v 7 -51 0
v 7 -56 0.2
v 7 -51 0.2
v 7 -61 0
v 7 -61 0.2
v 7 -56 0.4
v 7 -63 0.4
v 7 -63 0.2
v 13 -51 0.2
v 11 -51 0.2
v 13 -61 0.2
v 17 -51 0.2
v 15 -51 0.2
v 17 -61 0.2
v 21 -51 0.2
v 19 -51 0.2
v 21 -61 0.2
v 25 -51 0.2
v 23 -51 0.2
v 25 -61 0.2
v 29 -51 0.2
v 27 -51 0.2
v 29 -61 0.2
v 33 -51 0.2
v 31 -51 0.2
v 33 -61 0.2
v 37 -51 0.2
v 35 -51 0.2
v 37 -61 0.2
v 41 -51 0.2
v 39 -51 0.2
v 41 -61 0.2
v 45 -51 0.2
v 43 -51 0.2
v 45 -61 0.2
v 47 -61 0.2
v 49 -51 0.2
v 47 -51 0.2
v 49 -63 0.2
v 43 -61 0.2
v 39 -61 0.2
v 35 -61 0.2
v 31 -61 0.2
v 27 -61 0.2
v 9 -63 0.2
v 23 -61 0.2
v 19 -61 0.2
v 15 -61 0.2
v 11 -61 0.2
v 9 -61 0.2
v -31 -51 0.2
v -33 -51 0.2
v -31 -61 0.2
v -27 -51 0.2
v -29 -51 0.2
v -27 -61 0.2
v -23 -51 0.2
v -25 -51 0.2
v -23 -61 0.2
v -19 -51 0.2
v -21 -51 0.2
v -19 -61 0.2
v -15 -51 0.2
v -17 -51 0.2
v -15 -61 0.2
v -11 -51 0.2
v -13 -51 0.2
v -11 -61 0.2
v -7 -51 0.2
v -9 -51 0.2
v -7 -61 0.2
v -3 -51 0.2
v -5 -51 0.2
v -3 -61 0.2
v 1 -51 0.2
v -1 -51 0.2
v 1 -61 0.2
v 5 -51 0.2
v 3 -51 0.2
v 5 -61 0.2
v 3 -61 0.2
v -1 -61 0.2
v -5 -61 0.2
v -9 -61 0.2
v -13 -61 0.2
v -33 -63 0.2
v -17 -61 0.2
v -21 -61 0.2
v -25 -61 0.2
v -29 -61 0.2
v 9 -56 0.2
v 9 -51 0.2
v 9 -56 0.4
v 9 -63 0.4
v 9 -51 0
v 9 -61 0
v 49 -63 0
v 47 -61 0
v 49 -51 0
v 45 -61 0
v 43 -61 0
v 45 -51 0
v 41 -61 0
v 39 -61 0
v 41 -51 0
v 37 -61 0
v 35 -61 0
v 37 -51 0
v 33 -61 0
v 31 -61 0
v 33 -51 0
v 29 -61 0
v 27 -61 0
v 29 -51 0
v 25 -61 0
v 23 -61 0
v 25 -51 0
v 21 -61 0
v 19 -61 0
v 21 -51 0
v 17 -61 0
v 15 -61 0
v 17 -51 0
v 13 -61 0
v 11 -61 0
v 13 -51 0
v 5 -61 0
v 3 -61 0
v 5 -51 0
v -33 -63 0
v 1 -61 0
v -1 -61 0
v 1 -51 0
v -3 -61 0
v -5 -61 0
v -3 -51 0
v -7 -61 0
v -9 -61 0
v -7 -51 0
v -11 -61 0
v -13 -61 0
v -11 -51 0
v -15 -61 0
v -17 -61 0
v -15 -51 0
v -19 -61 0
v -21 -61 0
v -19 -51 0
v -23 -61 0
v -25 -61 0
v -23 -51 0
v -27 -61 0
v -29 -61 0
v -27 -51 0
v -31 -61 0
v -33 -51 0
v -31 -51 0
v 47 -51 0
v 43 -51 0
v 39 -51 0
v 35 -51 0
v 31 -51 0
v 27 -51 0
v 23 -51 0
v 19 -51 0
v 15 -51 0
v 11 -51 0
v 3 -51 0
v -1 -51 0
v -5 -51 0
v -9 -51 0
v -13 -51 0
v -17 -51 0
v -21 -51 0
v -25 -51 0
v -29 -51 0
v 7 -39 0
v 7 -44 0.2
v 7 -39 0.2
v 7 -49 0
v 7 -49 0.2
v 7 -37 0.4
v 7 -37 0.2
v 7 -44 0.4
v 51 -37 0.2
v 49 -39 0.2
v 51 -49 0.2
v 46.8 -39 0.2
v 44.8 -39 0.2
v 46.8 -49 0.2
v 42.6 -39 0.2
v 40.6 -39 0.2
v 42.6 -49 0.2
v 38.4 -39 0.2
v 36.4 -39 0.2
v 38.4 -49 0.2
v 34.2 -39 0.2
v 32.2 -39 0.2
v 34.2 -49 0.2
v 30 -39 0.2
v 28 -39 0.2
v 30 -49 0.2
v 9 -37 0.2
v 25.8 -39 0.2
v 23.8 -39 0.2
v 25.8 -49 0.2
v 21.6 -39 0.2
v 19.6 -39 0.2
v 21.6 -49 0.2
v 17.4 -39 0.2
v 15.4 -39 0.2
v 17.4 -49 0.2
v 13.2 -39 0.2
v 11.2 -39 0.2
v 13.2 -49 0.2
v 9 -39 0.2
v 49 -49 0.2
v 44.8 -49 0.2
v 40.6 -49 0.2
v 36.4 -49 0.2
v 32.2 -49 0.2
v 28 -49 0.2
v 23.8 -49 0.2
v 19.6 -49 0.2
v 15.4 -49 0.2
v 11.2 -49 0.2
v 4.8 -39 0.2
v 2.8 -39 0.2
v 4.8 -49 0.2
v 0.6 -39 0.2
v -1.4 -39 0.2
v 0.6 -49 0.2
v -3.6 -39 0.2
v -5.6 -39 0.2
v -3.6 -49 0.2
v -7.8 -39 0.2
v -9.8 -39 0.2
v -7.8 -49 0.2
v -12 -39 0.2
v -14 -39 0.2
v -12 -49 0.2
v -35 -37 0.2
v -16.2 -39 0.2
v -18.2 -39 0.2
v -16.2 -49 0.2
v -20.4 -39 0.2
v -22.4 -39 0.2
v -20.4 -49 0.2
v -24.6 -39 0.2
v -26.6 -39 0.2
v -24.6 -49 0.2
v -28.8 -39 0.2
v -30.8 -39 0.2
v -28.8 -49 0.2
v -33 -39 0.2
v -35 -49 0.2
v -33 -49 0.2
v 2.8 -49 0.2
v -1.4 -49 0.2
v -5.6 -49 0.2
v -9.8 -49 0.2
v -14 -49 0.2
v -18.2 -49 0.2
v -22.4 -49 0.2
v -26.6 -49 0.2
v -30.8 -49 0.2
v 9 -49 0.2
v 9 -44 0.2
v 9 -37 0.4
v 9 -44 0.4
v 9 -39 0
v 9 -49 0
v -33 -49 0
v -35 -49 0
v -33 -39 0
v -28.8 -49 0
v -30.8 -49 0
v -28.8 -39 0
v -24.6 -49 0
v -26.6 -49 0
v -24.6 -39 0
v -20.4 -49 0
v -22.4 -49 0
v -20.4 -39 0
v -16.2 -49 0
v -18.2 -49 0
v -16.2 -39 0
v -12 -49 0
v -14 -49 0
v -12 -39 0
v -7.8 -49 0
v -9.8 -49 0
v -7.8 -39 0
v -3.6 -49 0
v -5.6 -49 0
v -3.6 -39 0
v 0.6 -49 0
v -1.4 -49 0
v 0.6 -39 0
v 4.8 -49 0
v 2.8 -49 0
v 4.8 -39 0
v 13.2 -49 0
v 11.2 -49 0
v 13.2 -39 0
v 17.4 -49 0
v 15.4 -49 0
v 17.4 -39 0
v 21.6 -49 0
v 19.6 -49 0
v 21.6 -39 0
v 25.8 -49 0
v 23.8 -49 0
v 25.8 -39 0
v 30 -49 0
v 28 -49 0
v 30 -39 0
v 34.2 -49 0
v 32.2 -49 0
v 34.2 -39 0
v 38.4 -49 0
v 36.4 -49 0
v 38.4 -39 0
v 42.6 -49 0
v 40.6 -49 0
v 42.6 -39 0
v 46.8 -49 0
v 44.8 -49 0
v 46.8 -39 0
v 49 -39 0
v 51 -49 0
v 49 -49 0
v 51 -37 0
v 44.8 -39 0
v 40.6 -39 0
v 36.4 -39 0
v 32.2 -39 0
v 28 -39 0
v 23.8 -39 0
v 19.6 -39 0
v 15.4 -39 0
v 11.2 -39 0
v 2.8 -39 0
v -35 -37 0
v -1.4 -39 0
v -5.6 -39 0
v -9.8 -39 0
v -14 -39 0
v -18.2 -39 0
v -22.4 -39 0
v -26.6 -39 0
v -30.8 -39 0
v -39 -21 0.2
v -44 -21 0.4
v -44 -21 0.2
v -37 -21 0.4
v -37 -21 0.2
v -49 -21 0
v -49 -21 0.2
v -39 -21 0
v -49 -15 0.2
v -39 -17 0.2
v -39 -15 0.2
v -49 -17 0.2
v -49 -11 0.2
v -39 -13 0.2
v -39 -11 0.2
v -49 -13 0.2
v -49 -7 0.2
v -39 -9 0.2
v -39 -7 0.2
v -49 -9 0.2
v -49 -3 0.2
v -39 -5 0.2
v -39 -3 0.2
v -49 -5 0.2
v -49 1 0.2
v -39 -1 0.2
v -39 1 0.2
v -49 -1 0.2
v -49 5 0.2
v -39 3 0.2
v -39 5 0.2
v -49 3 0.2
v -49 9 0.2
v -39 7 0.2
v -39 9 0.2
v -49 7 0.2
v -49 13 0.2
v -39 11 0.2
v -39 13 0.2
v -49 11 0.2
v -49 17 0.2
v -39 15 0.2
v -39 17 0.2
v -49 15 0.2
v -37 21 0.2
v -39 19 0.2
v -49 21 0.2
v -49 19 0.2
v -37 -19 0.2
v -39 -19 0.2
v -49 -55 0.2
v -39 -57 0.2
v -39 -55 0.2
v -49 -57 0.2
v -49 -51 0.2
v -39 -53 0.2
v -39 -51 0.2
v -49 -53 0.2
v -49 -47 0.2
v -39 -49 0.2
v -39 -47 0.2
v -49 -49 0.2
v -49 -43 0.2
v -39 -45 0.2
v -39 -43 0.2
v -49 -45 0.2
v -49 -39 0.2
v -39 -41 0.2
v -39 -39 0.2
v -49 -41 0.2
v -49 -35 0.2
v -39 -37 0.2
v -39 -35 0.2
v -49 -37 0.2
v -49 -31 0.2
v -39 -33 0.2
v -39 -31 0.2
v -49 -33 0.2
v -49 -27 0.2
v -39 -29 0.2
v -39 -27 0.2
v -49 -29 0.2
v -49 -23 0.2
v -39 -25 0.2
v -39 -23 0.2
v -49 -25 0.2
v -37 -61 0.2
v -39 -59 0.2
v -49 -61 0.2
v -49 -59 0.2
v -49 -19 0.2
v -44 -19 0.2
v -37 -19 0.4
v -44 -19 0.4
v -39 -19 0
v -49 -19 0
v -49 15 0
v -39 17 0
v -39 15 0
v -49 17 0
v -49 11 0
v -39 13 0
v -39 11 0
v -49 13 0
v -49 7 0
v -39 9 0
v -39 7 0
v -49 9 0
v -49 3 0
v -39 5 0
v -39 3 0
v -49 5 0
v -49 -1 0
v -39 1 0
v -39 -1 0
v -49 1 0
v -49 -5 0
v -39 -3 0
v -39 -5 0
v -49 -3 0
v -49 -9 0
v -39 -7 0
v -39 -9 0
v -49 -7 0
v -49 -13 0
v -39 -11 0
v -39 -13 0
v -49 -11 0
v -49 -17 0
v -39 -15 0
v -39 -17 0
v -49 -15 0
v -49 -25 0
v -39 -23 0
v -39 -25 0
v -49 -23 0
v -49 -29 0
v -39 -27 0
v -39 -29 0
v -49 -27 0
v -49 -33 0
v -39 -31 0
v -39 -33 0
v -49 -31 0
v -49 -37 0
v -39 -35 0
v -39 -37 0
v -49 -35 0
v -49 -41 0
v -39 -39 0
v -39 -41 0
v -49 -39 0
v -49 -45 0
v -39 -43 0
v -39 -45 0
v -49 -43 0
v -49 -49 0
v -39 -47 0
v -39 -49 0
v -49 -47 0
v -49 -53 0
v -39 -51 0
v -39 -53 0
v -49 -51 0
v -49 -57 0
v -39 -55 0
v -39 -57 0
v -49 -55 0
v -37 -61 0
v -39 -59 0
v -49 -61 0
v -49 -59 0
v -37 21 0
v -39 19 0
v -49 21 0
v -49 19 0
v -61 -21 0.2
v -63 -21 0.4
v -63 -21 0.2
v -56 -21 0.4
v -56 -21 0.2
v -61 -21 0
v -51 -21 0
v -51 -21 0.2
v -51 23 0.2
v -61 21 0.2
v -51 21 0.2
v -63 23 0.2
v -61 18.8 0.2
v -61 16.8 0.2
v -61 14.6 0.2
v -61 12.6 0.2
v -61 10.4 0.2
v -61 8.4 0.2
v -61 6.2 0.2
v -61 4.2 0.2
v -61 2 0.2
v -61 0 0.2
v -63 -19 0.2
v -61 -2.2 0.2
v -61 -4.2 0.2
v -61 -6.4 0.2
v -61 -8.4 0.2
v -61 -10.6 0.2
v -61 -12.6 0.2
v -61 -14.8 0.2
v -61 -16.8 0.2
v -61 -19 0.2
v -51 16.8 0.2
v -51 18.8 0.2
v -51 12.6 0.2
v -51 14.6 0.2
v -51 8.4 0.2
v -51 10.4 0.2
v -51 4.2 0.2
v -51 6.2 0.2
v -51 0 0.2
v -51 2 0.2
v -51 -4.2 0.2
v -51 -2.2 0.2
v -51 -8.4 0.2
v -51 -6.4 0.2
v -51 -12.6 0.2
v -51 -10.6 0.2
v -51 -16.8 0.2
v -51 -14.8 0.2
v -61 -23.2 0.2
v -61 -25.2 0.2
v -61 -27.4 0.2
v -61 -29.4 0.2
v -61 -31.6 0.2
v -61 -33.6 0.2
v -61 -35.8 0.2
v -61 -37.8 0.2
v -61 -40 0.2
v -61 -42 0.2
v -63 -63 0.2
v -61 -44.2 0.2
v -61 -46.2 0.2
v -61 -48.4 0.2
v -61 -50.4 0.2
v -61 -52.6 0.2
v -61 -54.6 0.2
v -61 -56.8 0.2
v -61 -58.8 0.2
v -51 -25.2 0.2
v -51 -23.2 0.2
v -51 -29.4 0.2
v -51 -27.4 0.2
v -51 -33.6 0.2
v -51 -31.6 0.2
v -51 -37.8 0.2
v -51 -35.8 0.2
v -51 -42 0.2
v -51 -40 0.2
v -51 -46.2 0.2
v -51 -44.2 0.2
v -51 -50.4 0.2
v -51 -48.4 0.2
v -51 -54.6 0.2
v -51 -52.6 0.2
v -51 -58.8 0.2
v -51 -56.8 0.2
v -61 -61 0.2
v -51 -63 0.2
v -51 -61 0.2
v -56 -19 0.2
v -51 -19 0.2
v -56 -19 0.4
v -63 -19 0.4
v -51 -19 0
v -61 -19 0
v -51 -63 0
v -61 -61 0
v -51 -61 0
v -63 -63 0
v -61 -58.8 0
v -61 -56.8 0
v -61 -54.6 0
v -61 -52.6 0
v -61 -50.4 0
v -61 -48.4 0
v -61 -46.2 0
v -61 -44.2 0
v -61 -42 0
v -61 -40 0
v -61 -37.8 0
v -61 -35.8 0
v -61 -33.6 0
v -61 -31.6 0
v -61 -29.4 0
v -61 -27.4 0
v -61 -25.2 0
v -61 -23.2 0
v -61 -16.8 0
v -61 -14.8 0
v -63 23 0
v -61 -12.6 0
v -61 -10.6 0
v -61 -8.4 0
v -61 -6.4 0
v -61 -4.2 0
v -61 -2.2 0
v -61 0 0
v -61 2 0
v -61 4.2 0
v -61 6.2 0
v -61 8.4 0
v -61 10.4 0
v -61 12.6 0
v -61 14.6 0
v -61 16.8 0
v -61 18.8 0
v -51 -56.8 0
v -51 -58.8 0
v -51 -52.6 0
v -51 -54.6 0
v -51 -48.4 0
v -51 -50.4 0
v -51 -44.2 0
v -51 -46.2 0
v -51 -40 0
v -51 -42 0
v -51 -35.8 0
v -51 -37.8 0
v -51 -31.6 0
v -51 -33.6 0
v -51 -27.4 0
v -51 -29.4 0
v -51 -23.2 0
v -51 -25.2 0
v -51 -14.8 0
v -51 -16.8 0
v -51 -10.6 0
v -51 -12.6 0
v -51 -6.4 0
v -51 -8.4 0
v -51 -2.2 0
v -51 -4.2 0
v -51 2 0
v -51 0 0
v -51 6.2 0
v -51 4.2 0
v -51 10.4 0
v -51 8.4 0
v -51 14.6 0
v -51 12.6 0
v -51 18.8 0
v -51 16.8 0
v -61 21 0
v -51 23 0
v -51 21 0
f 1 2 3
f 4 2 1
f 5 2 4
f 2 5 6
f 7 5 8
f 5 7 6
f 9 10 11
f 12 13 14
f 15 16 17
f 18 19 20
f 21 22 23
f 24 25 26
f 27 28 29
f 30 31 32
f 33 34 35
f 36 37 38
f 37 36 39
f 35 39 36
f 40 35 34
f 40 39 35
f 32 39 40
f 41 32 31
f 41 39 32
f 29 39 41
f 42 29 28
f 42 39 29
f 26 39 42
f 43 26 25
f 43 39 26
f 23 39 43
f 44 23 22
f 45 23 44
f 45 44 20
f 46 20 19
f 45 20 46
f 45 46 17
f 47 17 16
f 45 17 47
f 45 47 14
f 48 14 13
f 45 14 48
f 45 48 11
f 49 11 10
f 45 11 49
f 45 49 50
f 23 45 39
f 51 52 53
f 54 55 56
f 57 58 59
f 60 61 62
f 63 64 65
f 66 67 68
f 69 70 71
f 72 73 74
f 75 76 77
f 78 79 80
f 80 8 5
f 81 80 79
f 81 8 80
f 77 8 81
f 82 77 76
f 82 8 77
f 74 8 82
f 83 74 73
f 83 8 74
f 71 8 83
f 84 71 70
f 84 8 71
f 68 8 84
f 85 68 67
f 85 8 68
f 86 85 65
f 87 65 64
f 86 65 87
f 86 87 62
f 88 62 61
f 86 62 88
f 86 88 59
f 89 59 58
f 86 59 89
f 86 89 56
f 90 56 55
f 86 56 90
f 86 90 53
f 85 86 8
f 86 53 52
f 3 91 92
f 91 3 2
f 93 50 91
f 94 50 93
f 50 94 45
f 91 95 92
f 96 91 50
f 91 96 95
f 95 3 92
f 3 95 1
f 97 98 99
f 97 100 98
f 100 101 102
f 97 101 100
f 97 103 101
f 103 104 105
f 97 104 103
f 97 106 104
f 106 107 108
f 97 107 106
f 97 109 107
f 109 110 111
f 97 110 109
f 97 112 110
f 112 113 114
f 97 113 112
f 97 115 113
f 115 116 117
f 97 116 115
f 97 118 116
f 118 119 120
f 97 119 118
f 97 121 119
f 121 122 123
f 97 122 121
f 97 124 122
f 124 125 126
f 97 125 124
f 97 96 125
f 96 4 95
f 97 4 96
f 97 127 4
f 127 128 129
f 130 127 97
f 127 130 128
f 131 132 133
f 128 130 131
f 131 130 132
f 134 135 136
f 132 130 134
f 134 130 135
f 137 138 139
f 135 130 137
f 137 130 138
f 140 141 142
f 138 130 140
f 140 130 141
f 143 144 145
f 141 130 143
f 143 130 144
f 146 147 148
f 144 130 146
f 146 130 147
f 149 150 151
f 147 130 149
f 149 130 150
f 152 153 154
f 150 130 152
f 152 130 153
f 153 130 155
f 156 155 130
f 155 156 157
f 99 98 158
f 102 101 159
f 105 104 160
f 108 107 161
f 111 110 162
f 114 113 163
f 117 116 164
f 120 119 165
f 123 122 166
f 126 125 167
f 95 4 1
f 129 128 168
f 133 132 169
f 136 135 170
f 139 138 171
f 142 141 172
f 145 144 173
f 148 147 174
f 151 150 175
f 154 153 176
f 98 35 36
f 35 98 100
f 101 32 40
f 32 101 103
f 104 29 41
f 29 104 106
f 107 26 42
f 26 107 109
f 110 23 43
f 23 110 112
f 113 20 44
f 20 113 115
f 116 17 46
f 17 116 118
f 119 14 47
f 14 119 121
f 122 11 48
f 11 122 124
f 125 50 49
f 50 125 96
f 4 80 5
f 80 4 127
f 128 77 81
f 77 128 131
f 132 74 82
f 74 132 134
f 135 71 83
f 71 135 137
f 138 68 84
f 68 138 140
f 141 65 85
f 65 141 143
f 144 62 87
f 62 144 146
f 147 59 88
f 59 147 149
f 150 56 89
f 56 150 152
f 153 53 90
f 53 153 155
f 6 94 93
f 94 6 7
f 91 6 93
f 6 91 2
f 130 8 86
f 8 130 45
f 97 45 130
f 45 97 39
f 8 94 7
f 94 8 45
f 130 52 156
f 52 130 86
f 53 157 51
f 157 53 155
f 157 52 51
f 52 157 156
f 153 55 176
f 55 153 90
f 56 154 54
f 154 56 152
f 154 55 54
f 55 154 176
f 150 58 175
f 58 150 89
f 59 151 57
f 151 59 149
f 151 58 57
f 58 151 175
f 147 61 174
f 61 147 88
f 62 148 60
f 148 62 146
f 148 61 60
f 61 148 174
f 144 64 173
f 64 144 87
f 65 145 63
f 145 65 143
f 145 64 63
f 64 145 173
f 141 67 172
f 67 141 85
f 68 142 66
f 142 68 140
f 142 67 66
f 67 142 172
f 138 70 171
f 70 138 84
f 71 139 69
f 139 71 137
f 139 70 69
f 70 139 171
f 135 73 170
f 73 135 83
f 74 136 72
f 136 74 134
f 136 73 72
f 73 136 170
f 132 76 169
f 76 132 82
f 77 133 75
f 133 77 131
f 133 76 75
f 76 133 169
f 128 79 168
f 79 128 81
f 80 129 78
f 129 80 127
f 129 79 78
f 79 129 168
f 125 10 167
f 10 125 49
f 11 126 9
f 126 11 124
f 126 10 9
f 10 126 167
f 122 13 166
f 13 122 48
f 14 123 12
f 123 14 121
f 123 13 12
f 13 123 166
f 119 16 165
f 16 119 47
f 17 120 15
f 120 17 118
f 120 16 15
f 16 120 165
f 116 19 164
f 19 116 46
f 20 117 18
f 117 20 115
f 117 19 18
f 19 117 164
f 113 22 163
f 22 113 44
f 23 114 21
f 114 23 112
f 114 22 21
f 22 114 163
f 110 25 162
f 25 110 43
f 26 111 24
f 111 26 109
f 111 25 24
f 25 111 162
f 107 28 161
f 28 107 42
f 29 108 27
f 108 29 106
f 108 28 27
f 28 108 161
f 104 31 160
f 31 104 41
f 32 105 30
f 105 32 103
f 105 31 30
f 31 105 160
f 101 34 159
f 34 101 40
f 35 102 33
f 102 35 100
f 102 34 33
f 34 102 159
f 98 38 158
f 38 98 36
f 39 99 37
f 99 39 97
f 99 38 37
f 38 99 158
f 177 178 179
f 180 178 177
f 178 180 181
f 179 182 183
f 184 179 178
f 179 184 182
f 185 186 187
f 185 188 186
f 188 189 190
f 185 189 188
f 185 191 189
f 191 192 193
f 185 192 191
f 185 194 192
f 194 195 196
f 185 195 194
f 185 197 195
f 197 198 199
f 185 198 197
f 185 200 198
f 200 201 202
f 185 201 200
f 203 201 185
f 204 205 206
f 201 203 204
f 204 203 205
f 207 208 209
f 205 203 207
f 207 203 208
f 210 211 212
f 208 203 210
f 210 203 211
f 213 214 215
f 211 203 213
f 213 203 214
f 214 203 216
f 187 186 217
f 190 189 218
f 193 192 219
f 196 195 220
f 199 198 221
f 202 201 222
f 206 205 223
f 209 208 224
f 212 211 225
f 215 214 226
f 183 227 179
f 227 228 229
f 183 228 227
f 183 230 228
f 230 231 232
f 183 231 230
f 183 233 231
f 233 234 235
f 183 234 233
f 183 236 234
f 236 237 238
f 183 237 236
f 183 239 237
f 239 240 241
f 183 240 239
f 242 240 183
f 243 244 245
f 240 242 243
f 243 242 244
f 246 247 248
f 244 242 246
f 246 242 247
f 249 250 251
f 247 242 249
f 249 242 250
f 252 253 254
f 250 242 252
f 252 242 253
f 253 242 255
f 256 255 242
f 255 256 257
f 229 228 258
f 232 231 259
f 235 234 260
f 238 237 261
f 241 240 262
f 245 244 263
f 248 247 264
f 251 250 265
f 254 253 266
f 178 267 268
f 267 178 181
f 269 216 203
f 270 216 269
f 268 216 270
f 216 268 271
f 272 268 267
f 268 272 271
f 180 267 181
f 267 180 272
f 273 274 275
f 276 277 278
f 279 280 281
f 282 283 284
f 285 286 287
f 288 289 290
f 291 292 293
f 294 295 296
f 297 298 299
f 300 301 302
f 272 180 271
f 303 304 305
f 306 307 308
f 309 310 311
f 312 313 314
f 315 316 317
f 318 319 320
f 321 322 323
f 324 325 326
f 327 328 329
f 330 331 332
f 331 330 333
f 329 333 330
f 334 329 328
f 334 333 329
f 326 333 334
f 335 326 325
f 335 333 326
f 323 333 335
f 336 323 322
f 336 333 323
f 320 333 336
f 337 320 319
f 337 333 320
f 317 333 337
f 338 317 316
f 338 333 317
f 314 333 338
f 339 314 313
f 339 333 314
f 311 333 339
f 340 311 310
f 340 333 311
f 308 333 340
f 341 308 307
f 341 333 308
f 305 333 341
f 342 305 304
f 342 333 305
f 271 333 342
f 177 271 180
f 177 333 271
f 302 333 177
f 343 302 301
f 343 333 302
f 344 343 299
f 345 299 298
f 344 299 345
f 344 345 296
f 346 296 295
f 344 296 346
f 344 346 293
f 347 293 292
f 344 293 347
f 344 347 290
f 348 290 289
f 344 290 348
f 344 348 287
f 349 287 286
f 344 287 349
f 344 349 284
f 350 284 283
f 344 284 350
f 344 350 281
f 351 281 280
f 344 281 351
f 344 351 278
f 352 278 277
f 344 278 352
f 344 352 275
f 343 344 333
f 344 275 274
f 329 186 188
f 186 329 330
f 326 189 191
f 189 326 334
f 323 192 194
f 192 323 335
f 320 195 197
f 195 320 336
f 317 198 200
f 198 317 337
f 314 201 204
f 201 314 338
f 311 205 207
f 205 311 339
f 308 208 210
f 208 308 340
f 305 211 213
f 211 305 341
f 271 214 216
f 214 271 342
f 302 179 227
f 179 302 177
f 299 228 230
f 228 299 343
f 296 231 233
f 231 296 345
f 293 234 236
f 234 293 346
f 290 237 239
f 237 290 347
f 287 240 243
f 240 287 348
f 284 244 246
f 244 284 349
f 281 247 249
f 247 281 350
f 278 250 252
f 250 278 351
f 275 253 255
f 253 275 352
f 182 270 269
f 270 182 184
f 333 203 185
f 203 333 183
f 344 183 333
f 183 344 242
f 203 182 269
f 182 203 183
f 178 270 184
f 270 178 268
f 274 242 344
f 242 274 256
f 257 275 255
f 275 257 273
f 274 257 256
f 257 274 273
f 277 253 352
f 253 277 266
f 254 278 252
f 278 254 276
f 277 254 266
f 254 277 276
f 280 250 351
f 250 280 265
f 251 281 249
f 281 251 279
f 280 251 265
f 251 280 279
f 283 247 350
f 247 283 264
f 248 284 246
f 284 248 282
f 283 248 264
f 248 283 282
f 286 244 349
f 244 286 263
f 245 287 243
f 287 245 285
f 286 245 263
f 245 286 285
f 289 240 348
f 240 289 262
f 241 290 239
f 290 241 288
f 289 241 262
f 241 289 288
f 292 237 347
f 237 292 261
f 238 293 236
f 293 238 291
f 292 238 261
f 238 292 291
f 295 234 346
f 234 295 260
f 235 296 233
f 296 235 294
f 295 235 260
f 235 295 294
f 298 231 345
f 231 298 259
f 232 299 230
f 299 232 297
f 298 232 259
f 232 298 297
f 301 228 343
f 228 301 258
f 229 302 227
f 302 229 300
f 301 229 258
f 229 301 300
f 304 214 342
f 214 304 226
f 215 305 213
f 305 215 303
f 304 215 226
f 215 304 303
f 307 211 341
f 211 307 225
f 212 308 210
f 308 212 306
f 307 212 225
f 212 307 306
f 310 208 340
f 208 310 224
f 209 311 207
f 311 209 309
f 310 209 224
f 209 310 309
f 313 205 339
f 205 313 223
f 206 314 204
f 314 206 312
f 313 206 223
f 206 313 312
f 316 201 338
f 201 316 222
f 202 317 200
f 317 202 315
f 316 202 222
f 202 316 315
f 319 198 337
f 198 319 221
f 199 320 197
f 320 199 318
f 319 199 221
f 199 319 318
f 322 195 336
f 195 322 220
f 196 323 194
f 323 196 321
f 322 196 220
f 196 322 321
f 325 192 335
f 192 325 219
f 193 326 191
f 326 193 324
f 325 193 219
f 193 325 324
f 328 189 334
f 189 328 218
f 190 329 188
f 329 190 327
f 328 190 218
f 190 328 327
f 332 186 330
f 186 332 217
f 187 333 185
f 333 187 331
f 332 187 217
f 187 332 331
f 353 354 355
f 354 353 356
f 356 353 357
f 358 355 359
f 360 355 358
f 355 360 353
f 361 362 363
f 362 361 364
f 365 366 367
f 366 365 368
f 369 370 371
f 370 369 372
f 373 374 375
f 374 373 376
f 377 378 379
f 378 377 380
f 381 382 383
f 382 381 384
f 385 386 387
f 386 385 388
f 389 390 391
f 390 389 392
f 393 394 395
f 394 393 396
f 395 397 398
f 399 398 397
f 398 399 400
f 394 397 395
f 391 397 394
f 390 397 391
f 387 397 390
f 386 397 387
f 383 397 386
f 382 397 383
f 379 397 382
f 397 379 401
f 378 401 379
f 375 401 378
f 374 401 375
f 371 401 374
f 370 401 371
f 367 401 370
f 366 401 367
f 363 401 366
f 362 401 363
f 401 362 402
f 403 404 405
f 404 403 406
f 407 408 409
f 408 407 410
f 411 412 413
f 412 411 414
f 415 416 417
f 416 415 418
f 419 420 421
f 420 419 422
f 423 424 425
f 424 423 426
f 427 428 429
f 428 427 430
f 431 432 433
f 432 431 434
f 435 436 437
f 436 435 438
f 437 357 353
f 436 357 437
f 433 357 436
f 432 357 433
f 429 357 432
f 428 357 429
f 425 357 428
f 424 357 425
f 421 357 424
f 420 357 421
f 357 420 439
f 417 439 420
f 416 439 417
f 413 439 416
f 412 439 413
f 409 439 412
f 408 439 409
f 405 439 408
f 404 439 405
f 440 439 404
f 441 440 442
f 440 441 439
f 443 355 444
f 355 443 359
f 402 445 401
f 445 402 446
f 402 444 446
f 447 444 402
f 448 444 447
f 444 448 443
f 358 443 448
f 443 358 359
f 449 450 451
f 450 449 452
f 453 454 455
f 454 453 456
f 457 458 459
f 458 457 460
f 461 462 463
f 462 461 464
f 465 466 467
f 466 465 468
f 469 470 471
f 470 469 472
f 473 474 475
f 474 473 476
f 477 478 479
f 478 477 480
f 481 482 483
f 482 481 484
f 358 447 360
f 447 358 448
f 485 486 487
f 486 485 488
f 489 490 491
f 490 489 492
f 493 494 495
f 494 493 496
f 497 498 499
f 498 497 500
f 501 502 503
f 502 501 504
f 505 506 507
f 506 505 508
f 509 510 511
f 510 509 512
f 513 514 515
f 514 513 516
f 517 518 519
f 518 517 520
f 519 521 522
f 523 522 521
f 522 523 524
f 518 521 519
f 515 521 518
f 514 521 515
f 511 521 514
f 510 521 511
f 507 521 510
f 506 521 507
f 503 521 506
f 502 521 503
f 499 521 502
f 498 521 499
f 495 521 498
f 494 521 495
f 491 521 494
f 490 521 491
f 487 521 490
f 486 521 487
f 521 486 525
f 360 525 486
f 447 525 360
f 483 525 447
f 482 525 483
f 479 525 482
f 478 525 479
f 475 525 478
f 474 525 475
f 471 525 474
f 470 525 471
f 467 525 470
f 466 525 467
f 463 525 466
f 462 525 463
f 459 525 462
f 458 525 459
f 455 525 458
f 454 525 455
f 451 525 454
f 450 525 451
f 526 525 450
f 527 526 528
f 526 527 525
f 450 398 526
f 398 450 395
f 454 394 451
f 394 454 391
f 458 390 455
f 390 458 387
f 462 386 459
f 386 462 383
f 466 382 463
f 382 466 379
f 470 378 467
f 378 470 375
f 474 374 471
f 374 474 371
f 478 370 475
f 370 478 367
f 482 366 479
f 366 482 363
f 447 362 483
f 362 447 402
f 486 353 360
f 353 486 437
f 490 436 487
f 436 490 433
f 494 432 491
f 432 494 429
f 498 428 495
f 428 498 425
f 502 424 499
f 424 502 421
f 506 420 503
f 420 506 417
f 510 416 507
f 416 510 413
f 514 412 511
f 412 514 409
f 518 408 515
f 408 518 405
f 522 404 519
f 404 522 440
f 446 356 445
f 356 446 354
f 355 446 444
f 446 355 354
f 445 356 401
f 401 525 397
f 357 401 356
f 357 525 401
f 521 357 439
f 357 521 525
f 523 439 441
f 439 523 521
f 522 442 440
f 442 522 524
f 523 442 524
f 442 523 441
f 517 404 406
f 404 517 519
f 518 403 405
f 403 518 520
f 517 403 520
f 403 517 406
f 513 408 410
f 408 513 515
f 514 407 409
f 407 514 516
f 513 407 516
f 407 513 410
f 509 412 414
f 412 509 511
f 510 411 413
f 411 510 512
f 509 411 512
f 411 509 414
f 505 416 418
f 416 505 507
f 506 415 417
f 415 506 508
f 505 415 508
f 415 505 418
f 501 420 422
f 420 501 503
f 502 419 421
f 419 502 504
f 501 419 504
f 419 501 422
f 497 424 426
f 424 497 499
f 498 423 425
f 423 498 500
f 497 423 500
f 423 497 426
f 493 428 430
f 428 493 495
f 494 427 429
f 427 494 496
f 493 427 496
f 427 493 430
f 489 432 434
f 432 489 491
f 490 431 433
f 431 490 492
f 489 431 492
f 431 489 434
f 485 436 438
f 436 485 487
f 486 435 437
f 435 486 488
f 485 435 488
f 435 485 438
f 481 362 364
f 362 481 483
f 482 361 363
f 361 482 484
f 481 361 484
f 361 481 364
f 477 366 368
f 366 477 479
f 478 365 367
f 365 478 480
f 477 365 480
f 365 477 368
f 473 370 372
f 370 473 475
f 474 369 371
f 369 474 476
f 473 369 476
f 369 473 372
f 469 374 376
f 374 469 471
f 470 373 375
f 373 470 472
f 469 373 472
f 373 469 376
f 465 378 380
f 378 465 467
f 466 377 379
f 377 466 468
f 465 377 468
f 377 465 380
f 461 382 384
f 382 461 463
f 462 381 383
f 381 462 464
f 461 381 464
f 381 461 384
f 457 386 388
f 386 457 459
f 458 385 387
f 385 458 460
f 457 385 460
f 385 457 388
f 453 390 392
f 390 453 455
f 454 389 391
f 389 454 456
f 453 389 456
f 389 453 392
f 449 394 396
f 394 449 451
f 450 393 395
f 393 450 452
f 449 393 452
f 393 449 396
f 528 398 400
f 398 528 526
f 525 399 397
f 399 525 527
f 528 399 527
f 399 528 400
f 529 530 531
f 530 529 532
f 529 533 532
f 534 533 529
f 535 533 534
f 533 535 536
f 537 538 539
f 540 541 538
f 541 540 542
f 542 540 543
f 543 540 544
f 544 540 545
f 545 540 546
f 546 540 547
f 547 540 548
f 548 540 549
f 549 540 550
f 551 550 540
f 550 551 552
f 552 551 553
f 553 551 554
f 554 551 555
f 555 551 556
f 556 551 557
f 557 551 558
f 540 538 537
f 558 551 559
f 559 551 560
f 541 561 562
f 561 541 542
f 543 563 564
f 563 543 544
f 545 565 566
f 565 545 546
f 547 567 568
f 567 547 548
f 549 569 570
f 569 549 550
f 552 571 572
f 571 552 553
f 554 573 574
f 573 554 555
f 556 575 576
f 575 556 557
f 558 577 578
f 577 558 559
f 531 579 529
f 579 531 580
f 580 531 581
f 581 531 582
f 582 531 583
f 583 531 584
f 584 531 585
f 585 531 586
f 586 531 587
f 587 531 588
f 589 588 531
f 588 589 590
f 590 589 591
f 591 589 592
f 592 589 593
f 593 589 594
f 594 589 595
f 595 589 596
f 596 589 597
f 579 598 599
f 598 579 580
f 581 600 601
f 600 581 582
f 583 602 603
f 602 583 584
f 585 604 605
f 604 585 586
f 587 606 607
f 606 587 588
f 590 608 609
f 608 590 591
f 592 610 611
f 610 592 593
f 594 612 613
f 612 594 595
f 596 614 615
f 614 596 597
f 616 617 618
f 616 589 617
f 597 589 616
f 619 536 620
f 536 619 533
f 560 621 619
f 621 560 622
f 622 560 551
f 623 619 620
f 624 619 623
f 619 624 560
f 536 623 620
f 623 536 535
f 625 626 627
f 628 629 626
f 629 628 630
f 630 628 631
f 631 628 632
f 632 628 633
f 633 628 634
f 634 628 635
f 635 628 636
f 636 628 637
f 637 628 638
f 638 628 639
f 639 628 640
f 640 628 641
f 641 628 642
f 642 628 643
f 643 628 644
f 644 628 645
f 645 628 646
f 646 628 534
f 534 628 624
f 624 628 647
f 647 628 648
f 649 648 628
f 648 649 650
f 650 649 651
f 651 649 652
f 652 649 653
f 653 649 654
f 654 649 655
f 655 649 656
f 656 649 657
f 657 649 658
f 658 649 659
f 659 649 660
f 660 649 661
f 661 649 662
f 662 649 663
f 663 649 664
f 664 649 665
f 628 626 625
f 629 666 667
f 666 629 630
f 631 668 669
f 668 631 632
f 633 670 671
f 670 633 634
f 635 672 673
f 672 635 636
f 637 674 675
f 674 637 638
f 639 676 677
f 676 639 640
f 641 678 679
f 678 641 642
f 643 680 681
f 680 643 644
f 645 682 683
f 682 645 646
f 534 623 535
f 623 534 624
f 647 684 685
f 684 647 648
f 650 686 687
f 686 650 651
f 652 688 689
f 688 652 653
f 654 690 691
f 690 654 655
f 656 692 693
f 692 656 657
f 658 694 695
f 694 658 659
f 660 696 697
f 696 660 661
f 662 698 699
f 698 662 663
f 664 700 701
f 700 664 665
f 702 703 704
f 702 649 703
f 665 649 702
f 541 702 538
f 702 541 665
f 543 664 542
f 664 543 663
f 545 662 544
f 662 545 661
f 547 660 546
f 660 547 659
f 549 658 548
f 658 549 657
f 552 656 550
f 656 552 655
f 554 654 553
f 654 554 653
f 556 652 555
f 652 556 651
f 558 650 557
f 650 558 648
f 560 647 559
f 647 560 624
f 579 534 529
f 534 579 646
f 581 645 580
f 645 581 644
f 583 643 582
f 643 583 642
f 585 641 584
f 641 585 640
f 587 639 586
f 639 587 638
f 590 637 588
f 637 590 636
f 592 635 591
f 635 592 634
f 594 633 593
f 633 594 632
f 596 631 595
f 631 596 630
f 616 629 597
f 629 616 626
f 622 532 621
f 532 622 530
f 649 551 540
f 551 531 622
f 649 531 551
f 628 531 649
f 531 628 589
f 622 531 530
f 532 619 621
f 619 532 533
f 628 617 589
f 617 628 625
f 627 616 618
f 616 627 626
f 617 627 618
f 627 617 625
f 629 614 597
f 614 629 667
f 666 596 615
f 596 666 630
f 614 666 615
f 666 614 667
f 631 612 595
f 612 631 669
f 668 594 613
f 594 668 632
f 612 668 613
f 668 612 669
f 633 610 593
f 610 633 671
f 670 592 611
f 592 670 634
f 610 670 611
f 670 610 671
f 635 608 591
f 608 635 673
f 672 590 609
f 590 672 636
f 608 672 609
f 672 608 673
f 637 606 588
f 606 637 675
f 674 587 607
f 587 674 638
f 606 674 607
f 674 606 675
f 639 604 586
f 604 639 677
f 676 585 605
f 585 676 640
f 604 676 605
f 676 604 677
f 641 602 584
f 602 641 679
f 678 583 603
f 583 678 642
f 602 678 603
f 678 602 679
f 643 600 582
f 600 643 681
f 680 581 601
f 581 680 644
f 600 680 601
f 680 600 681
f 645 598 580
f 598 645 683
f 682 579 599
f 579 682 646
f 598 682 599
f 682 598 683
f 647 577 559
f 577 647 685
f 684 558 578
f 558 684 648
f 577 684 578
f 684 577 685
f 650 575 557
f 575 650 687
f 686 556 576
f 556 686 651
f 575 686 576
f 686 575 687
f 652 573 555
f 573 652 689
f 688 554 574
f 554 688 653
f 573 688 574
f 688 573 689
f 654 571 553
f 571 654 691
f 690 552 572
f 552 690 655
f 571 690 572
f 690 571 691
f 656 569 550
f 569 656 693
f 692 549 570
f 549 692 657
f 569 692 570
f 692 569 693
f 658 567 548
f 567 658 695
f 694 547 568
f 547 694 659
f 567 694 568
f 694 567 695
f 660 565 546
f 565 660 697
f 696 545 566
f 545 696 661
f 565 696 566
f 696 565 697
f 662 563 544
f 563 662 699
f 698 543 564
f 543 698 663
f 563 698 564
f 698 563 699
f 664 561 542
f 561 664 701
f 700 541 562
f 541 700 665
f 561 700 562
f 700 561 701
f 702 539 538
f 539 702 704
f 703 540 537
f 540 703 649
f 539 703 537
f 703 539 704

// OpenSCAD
/**
 *
 * Run:
 *
 *    openscad <file_name>.scad
 *    openscad [options] <file_name>.scad
 *
 * Options with -D <var=val>:
 * 
 *    teeth_count      number of teeth, recommended: 10 for positive offset + 10 for negative offset + 1 center = 21
 *    tooth_width      width of one single tooth
 *    tooth_height     height of teeth / comb, should be n * layer_height
 *    tooth_length     length of one single tooth
 *    teeth_gap        space in between teeth of the unscaled comb
 *    comb_clearance   comb to comb distance, should not be > (2 * tooth_width)
 *    base_height      comb base (optional), set to 0 to disable
 *    render_mode      0 ... all, 1 ... verification comb + base, 2 ... alignment comb
 *    extra_clearance  deprecated: extra clearance in case the comb pairs overlap (usually on small twidth and/or tgap)
 * 
 */

// Author : rubienr (https://github.com/rubienr)
// Source : https://github.com/rubienr/cad/blob/master/creality-ender-5-plus/printer-test-objects/nozzle-to-nozzle-offset-calibration-pattern/nozzle-to-nozzle-xy-offset-calibration-pattern.scad
// Origin : https://github.com/5axes/Calibration-Shapes/issues/15
// ------------------------------------------------------------------------------------------------------------------------

module drawComb (
    _num_teeth, 
    _teeth_gap,
    _tooth_width,
    _tooth_height,
    _tooth_length,
    _base_height,
    _render_mode) // 3 ... none, 4 ... bed only, 5 ... comb only, 6 ... all
{
  
  // base for better adhesion (optional)
  if (_base_height > 0 && (_render_mode == 4 || _render_mode == 6)) 
  {
    _comb_length = (_num_teeth - 1) * _teeth_gap + (_num_teeth + 2) * _tooth_width;
    _comb_width  =  _tooth_width + _tooth_length + 2 * _tooth_width;
    
    color("grey")
      translate ([-_tooth_width, -2*_tooth_width, 0])
        cube([_comb_length, _comb_width, _base_height]);
  }

  // comb
  if (_render_mode == 5 || _render_mode == 6) 
  {
    color_value = _render_mode == 1 ? "blue": (_render_mode == 2 ? "red" : "orange");
  
    // teeth
    for (t = [0:_num_teeth-1]) 
    {
      let (translation = [t * (_teeth_gap + _tooth_width), 0, _base_height])
      {
        translate (translation) color(color_value) cube ([_tooth_width, _tooth_length, _tooth_height], false);
        
        // center tooth mark
        if (t == (((_num_teeth - 1) / 2)))
        {
          translate (translation + [0, -_tooth_width, _tooth_height]) color(color_value) cube ([_tooth_width, _tooth_length / 2 + _tooth_width, _tooth_height]);
        }
      }
    }
    
    // comb back
    translate ([0, - _tooth_width, _base_height]) 
      color(color_value) 
        cube ([_num_teeth * _tooth_width + (_num_teeth - 1) * _teeth_gap, _tooth_width, _tooth_height], false);      
  }
}

// ------------------------------------------------------------------------------------------------------------------------

module drawCombPair(
    _teeth_count, 
    _teeth_gap,
    _tooth_width,
    _tooth_height,
    _tooth_length,
    _comb_clearance,
    _base_height,
    _render_mode) 
{
  _comb_displacement = [0, -_tooth_length - (_comb_clearance / 2), 0];
  _second_comb_teeth_displacement = _teeth_gap / ((_teeth_count - 1) / 2);
  _second_comb_teeth_gap = _teeth_gap + _second_comb_teeth_displacement;
  _second_comb_displacement = [-_teeth_gap, 0 , 0];

  // default comb
    translate(_comb_displacement)
      drawComb(_teeth_count, _teeth_gap, _tooth_width, _tooth_height, _tooth_length, _base_height,  
        _render_mode == 0 ? 6 :             // all
          (_render_mode == 2 ? 5 :          // comb only
            (_render_mode == 1 ? 4 : 3)));  // bed only

  // verification comb (stretched)
    mirror ([0,1,0]) 
      translate (_second_comb_displacement) // sync middle tooth with default comb 
        translate(_comb_displacement)
          drawComb(_teeth_count, _second_comb_teeth_gap, _tooth_width, _tooth_height, _tooth_length, _base_height, 
            _render_mode == 0 ? 6 :          // all
              (_render_mode == 1 ? 6 : 3));  // comb and bed
}

// ------------------------------------------------------------------------------------------------------------------------

module drawXYCalibrationCombs( 
    _teeth_count, 
    _teeth_gap,
    _tooth_width,
    _tooth_height,
    _tooth_length,
    _comb_clearance,
    _base_height,
    _render_mode,
    _extra_clearance) 
{
  _comb_width = _tooth_length + _tooth_width + _comb_clearance / 2;
  _t_x = [_comb_width + 2 * _tooth_width + _extra_clearance , 0, 0];
  _t_y = [0, -_comb_width + _tooth_width, 0];
  _r_y = [0, 0, 90];
  
  // X aligned comb pair
  translate(_t_x)
    drawCombPair(_teeth_count, _teeth_gap, _tooth_width, _tooth_height, _tooth_length, _comb_clearance, _base_height, _render_mode);

  // Y aligned comb pair
  translate(_t_y)
    rotate(_r_y) 
      drawCombPair(_teeth_count, _teeth_gap, _tooth_width, _tooth_height, _tooth_length, _comb_clearance, _base_height, _render_mode); 
}

// ------------------------------------------------------------------------------------------------------------------------

module draw()
{
  teeth_count    = is_undef(teeth_count)    ?  21 : teeth_count;     // number of teeth, recommended: 10 for positive offset + 10 for negative offset + 1 center = 21
  tooth_width    = is_undef(tooth_width)    ?   2 : tooth_width;     // width of one single tooth
  tooth_height   = is_undef(tooth_height)   ? 0.2 : tooth_height;    // height of teeth / comb, should be n * layer_height
  tooth_length   = is_undef(tooth_length)   ?  10 : tooth_length;    // length of one single tooth
  teeth_gap      = is_undef(teeth_gap)      ?   2 : teeth_gap;       // space in between teeth of the unscaled comb
  comb_clearance = is_undef(comb_clearance) ?   2 : comb_clearance;  // comb to comb distance, should not be > (2 * tooth_width)
  base_height    = is_undef(base_height)    ?   0 : base_height;     // comb base (optional), set to 0 to disable
  render_mode    = is_undef(render_mode)    ?   0 : render_mode;     // 0 ... all, 1 ... verification comb + base, 2 ... alignment comb; (>= 3 ... reserved for internal usage)
  
  // TODO rr - remove the need of the extra_clearance parameter: swap draw order (draw verification comb first, then align the default one)
  extra_clearance = is_undef(extra_clearance) ? 0 : extra_clearance; // extra clearance in case the comb pairs overlap (usually on small twidth and/or tgap)
  
  assert(teeth_count % 2 == 1, "An odd number of teeth is required.");
  drawXYCalibrationCombs(teeth_count, teeth_gap, tooth_width, tooth_height, tooth_length, comb_clearance, base_height, render_mode, extra_clearance);
}

// ------------------------------------------------------------------------------------------------------------------------
// Translate to center the part
translate([-50,-50,0]) draw();
